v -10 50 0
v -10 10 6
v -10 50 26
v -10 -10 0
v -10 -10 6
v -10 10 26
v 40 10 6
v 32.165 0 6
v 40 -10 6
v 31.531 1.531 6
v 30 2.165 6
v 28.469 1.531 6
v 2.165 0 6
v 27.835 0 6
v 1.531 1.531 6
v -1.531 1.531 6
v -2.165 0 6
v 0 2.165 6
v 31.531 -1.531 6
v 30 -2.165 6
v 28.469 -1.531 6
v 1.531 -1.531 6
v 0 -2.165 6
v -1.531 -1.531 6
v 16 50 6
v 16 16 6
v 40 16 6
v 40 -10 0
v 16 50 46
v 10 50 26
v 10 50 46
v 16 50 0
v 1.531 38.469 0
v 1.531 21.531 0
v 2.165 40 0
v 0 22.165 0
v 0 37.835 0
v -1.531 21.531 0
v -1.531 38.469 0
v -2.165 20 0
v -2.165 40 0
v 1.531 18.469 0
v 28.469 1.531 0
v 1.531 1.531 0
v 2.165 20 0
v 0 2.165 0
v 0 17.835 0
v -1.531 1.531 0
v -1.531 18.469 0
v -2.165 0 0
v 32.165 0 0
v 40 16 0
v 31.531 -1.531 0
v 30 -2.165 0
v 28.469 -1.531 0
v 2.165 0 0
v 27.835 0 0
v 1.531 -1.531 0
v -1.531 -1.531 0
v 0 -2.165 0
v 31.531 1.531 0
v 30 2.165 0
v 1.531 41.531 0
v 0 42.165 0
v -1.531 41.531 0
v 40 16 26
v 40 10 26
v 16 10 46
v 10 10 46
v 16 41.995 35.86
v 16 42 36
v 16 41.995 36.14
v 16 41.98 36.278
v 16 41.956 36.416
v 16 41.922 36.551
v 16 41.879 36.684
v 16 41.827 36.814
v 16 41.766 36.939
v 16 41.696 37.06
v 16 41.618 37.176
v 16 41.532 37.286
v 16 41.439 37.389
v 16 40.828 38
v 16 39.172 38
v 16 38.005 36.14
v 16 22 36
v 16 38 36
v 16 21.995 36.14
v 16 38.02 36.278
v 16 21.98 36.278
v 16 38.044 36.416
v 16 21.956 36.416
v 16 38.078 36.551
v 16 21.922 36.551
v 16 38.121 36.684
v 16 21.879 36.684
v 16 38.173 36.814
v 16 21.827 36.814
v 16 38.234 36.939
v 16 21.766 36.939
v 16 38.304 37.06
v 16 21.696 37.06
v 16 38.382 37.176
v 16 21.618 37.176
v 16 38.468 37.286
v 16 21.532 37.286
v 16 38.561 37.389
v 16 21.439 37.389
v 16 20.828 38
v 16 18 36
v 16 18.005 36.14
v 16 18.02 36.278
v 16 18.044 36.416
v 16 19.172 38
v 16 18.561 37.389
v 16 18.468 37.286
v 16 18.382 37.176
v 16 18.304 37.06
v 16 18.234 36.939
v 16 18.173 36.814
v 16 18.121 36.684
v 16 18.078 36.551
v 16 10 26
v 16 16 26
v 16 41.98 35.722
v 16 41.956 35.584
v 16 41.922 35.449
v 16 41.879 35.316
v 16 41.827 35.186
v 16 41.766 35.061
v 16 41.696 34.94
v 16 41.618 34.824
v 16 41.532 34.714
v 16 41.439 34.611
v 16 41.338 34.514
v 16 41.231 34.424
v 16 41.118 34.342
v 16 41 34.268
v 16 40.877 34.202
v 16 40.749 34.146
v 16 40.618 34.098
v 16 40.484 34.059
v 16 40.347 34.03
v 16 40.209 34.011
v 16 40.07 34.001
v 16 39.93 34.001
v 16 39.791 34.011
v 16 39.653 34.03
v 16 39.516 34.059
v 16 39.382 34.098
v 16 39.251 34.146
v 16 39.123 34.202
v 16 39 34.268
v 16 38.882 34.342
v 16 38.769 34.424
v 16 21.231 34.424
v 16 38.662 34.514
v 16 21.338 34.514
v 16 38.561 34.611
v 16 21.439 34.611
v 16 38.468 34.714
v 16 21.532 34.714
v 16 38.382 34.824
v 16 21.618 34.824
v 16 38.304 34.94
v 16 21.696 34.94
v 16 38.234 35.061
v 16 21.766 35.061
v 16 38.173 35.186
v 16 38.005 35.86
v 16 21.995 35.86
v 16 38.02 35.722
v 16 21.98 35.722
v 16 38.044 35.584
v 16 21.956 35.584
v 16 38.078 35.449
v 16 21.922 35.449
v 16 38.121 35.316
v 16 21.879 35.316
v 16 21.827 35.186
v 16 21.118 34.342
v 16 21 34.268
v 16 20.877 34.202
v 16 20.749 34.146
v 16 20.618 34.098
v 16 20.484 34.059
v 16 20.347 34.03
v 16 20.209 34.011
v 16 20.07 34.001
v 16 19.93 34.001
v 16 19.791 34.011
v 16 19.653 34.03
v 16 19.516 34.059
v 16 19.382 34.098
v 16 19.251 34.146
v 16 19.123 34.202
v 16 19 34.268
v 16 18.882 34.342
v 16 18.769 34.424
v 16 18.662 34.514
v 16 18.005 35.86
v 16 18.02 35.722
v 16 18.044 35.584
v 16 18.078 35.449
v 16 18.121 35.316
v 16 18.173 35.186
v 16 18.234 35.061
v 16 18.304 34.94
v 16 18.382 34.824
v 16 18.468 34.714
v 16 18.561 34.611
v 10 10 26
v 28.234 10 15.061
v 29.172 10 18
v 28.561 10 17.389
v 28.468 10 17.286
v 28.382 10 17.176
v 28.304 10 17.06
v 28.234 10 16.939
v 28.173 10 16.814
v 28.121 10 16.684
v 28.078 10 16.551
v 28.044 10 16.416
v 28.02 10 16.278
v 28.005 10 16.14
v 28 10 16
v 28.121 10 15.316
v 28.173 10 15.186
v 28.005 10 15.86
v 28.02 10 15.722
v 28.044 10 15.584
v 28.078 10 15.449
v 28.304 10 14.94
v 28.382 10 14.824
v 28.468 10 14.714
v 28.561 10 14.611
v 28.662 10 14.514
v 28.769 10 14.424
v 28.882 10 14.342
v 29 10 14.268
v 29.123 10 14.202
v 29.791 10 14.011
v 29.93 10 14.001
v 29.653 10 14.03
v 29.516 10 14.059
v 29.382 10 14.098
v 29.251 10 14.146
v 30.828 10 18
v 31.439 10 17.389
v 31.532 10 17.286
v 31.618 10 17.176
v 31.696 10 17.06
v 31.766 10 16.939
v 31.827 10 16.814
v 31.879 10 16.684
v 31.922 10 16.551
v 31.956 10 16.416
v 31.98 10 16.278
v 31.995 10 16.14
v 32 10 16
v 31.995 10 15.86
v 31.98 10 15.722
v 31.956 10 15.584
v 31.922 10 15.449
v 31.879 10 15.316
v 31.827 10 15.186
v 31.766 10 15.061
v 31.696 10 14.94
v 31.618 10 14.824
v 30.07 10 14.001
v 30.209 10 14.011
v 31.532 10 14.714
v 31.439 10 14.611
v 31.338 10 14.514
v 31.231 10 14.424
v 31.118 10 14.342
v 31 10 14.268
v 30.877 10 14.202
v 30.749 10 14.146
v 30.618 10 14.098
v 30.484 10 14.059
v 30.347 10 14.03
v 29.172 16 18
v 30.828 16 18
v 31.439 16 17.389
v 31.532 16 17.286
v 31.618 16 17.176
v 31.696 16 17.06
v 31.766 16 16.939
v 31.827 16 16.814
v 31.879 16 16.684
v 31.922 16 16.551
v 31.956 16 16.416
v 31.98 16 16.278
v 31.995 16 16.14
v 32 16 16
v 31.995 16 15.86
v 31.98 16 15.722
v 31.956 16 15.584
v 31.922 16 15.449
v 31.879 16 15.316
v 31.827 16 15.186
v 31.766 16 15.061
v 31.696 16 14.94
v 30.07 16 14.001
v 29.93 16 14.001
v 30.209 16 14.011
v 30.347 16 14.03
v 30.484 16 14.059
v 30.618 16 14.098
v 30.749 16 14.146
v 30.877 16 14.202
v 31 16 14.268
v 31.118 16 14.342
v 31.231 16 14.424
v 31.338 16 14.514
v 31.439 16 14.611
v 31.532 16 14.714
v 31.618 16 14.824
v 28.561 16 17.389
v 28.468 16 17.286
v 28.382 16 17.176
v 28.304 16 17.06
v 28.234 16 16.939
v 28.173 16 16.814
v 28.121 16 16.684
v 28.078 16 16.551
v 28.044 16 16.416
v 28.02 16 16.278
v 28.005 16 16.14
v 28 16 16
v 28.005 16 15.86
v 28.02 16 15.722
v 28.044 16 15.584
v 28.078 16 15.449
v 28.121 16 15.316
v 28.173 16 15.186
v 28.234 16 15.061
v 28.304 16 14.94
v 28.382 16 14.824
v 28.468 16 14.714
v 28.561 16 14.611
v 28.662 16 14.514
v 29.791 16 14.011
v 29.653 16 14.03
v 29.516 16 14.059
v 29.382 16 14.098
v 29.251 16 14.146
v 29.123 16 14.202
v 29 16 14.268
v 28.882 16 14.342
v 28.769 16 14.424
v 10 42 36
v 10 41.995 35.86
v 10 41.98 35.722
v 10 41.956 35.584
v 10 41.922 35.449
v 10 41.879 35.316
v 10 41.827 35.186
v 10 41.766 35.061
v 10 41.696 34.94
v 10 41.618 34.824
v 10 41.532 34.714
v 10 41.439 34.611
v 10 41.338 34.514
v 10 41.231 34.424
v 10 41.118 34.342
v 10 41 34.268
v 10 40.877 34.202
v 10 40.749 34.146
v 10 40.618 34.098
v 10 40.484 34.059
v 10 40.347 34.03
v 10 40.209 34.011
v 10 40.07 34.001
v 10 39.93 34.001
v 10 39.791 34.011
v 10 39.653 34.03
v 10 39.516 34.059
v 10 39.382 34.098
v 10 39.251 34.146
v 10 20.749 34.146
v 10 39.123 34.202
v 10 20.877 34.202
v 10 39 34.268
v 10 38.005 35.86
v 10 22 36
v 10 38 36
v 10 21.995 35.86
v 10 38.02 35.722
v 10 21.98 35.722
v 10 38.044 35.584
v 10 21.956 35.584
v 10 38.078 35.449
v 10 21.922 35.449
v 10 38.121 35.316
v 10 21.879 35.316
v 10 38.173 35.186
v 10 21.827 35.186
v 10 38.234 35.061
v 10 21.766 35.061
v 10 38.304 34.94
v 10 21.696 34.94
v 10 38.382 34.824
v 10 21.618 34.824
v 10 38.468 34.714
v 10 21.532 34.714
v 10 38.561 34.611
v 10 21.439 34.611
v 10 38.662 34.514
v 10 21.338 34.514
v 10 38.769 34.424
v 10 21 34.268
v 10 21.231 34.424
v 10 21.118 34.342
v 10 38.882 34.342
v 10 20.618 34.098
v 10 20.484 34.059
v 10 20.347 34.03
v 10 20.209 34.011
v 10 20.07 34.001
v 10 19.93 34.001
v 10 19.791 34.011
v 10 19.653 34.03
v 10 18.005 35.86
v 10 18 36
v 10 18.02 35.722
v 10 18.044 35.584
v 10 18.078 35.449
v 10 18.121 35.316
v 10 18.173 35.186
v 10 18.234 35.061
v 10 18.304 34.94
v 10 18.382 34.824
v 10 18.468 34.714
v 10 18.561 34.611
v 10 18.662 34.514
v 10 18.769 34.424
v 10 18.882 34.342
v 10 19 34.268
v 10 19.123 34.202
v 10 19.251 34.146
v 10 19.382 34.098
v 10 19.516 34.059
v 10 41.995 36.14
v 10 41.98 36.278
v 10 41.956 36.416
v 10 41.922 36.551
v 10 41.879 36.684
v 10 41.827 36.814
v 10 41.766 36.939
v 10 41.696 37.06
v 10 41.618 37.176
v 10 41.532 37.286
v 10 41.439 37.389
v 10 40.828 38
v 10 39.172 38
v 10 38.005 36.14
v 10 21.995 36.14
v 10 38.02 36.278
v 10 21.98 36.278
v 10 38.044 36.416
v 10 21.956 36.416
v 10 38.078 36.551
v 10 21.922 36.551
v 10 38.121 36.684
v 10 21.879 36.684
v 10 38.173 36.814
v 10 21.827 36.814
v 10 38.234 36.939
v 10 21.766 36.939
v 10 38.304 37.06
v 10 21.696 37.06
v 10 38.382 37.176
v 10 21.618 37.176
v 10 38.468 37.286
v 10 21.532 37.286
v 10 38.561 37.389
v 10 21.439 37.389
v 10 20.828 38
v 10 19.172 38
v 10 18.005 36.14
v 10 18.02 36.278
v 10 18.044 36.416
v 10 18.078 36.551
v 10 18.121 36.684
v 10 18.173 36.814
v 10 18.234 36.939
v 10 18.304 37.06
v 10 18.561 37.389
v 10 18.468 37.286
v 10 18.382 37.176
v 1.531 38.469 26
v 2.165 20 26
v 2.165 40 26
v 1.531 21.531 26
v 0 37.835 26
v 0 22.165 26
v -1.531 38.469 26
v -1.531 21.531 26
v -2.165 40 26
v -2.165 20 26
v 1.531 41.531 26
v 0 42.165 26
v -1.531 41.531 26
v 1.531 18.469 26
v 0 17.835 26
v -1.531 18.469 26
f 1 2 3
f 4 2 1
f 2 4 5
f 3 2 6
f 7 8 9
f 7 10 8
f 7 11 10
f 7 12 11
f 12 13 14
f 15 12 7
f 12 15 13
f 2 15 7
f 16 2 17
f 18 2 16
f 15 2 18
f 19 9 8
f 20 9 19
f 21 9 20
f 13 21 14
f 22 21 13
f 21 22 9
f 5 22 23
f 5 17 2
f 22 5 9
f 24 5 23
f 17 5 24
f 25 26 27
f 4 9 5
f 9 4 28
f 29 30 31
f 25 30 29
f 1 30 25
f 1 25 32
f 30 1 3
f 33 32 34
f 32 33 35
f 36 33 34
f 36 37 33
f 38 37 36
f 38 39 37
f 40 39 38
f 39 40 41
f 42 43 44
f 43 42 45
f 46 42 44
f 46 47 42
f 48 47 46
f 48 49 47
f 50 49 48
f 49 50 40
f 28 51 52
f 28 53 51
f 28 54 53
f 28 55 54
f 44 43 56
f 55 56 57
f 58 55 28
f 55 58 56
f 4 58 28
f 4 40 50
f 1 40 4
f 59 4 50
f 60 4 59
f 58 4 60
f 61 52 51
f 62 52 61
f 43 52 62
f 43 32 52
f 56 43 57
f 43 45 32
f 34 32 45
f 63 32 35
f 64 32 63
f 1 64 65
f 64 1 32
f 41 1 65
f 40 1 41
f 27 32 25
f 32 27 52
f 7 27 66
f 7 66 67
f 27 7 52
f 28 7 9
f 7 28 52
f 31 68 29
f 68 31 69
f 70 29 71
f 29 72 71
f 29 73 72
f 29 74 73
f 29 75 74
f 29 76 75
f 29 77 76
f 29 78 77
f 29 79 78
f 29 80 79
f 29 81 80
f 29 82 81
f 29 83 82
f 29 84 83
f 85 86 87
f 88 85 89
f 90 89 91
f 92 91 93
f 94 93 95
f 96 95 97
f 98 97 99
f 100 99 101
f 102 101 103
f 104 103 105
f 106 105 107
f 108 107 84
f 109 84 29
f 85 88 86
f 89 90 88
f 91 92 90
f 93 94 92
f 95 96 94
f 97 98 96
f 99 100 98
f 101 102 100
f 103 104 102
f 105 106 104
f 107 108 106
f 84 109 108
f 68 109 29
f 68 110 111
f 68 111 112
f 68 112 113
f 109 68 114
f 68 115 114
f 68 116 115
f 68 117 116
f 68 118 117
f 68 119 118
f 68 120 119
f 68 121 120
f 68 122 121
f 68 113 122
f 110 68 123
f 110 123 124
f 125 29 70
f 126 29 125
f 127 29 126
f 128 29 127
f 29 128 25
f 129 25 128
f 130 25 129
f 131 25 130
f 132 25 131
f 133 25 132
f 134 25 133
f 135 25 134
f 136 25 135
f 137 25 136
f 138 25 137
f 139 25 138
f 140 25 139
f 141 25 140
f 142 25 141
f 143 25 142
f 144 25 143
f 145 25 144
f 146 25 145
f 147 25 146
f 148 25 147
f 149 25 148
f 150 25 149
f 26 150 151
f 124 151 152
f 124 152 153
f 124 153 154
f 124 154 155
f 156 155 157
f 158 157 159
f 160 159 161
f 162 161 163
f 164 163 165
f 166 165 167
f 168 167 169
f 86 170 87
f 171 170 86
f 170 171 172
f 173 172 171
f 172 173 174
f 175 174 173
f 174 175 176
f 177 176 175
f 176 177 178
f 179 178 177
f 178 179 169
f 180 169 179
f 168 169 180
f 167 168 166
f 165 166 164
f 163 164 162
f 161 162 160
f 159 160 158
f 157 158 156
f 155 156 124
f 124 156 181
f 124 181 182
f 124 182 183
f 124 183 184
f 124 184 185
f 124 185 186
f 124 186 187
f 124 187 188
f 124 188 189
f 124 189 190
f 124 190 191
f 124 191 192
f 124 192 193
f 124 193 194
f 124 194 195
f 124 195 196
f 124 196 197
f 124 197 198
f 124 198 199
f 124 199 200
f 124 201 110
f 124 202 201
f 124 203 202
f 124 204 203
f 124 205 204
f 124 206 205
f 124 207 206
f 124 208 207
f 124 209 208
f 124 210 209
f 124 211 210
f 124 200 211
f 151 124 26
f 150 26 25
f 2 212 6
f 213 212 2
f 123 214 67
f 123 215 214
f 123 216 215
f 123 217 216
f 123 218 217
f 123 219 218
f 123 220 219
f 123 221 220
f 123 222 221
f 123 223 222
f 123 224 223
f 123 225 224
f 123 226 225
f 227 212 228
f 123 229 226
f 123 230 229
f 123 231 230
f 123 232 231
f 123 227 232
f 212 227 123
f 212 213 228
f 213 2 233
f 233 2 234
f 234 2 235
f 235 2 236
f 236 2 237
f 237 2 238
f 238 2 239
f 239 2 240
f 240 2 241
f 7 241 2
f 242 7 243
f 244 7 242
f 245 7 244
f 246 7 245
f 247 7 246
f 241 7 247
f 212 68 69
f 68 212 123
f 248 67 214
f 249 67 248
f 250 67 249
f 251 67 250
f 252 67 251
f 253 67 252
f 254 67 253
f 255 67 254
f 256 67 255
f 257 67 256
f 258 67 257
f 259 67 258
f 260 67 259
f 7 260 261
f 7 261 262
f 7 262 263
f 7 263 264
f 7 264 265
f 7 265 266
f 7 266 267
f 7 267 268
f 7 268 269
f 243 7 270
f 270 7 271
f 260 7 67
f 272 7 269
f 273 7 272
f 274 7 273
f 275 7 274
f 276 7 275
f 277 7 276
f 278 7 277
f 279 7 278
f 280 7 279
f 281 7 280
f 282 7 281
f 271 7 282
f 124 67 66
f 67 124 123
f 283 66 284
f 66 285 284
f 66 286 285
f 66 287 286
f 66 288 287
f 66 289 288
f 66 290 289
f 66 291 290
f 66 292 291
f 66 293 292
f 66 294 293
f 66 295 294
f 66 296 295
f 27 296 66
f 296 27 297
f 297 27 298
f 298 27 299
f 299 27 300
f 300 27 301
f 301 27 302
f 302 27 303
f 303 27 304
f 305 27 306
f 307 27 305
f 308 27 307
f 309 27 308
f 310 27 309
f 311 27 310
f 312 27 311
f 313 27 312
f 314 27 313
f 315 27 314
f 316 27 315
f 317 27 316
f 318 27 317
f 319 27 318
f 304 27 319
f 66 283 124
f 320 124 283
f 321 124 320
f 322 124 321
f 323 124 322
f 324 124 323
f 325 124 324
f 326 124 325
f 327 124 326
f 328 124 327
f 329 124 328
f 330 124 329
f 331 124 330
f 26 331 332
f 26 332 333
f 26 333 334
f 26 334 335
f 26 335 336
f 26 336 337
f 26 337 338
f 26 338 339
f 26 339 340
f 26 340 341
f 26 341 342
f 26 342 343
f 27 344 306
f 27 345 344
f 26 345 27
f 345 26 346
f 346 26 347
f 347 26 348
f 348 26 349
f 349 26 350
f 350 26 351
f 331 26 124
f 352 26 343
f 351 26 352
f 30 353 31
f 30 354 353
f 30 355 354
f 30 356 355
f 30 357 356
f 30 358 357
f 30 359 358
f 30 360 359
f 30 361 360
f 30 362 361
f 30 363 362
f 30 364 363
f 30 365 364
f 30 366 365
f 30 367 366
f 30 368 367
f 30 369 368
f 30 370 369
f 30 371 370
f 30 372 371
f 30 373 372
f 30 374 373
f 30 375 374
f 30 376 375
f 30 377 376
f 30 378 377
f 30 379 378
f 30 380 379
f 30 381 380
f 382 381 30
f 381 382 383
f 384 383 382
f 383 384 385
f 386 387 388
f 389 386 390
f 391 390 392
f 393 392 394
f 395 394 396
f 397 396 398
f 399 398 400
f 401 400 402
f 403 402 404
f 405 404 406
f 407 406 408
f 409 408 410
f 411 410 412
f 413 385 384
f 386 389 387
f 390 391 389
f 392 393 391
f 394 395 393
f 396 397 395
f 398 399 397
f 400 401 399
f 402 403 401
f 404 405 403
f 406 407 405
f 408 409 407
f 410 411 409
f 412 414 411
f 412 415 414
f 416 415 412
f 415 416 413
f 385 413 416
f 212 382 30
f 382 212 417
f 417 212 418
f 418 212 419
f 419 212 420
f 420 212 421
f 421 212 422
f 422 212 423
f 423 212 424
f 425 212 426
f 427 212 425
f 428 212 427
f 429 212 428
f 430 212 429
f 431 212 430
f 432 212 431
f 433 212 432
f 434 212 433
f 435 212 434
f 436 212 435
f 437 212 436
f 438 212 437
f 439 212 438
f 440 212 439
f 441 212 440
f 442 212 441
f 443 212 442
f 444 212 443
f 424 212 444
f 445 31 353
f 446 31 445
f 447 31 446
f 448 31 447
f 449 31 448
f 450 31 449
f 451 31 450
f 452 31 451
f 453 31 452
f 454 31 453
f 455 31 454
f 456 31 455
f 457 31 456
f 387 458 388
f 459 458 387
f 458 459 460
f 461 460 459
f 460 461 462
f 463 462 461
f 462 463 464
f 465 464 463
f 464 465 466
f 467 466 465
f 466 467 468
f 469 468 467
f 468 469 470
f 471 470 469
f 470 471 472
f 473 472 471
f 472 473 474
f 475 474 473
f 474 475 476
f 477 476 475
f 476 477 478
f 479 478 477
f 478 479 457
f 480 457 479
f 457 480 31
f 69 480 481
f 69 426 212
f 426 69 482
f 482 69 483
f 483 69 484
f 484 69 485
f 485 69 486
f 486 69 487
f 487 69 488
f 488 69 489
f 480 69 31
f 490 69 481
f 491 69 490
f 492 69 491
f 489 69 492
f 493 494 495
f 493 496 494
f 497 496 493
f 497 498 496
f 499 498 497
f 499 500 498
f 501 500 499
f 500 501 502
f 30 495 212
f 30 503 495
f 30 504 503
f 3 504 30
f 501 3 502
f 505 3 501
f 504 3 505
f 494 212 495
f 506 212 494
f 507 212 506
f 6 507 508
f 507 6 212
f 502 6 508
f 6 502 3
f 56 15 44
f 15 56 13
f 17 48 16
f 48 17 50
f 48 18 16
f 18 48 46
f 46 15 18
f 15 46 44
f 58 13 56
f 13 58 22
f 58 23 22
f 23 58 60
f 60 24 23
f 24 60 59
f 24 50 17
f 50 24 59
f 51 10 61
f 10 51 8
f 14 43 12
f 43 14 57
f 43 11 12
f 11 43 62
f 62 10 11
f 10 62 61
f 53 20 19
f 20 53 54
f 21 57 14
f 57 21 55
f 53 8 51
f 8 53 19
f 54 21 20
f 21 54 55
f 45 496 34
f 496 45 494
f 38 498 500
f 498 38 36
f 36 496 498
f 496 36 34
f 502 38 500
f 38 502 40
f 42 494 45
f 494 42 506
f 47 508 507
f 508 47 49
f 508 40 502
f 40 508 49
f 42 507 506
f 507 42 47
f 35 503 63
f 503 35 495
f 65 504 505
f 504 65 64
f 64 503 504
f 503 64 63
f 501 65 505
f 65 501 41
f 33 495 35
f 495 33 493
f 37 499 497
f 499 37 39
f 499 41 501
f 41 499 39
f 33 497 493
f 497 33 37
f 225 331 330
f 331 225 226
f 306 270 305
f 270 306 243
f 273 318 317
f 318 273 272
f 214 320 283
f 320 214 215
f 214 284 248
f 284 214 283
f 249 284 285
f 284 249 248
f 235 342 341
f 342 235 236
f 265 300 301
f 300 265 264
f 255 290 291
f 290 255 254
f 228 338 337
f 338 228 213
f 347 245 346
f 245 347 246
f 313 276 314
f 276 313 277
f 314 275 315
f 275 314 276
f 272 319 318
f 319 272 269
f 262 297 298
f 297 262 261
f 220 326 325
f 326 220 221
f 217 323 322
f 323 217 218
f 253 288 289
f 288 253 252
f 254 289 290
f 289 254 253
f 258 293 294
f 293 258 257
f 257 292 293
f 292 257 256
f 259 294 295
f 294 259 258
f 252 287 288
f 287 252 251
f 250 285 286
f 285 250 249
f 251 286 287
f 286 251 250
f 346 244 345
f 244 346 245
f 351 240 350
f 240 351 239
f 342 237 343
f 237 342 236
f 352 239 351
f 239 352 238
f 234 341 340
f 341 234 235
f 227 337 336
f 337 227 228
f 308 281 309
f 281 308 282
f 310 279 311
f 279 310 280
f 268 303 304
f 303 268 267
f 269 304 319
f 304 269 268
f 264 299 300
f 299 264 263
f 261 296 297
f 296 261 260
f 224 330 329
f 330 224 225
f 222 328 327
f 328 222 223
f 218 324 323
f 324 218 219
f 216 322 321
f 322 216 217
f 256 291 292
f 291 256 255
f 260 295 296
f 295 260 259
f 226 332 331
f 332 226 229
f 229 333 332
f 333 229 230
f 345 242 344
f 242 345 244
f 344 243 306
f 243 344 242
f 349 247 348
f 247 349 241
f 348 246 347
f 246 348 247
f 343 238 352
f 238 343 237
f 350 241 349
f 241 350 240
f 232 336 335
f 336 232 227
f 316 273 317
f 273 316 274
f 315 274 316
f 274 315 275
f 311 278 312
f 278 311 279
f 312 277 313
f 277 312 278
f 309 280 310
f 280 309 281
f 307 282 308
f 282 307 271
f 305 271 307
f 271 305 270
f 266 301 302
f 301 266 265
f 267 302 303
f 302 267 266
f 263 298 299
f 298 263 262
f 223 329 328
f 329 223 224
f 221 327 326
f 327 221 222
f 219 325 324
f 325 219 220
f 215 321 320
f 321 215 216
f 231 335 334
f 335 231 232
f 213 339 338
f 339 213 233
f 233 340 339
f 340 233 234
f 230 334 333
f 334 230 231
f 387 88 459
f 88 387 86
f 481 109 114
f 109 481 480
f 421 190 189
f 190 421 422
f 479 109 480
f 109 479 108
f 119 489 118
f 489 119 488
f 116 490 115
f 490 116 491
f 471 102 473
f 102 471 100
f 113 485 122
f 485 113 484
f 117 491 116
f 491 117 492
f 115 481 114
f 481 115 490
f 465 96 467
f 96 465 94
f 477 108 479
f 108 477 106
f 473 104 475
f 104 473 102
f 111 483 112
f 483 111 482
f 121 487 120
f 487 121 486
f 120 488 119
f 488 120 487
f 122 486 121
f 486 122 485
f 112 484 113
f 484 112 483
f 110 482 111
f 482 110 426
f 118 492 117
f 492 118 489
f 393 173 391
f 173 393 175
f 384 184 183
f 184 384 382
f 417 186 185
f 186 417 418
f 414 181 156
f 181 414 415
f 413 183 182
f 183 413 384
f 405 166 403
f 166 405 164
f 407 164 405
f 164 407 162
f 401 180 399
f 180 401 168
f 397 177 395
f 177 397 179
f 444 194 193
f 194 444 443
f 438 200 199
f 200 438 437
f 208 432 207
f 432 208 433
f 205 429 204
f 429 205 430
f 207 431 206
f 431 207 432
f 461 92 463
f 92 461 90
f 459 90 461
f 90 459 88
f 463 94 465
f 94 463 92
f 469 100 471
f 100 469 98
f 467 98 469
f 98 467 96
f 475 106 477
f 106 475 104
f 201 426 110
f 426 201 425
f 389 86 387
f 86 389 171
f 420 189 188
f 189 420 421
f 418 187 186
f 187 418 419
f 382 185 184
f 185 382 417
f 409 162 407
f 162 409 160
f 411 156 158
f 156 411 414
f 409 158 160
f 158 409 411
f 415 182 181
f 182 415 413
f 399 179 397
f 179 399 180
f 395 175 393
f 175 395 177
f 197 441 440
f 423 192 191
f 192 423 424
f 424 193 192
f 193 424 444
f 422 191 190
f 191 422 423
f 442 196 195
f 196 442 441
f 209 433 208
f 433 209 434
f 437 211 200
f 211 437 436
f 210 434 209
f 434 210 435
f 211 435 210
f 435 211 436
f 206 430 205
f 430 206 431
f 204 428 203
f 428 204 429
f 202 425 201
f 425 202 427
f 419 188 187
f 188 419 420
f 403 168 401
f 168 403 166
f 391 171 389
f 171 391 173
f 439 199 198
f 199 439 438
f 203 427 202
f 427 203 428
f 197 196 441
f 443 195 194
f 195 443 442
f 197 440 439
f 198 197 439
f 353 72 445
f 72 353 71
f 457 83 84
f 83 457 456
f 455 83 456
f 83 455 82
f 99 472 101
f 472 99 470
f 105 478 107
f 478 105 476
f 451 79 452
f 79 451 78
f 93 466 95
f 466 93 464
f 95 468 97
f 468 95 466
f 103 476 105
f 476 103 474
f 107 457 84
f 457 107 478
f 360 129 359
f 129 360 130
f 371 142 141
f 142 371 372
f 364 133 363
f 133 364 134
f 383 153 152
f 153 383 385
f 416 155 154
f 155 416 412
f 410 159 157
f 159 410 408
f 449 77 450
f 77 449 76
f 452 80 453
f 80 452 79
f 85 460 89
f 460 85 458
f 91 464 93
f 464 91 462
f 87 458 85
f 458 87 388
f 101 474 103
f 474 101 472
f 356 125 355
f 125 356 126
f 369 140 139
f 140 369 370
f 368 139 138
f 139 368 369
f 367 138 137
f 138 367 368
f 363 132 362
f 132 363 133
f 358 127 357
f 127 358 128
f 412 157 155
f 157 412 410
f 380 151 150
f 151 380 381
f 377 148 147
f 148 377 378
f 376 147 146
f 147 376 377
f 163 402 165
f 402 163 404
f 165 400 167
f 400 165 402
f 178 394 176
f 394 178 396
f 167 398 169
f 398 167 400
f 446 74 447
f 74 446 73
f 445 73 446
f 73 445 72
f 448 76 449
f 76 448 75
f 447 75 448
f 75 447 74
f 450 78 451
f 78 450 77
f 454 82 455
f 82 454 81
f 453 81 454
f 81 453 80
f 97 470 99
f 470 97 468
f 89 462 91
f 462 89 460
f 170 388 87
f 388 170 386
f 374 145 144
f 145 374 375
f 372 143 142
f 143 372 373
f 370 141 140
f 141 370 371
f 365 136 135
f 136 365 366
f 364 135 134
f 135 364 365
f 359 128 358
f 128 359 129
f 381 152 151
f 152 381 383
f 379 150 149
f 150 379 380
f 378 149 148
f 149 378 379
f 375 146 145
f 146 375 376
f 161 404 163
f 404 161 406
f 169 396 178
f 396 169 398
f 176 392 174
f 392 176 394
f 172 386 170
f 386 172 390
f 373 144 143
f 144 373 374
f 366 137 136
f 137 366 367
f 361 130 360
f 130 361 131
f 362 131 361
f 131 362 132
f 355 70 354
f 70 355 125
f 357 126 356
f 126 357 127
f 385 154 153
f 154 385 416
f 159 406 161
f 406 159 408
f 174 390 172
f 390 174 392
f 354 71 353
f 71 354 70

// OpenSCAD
// file: trunctear.scad
//A module for truncated tear drops.

trunctear(1, 0.5, $fn = 90);

module trunctear(hei, radian, cent = false)
{
    linear_extrude(height = hei, center = cent)
        hull()
        {
            circle(r = radian);
            translate([0, radian/2])
                square([2*(radian*(2*cos(45)-1)), radian], center = true);
        }
}
// file: polyhole.scad
// The Cylinder is dead! Long live the Cylinder!
// A module for a polyhole by radius, based on Nophead's work.

module polyhole(h, r, cent = false)
{
    n = max(round(4 * r), 3);
    cylinder(h = h, r = r / cos(180 / n), $fn = n, center = cent);
}
// main file
// Upper brace

use<polyhole.scad>
use<trunctear.scad>

UpperBrace();

module UpperBrace()
{
    dist = 46;
    
    difference()
    {
        union()
        {
            hull()
            {
                translate([3, 20, 3])
                    cube([20+6, 60, 6], center = true);
                translate([15, 3, 3])
                    cube([50, 20+6, 6], center = true);
            }
            translate([3, 30, dist/2])
                cube([20+6, 40, dist], center = true);
            translate([15, 13, 13])
                cube([50, 6, 26], center = true);
        }
        translate([0, 30, dist-10])
            cube([20, 40, 20], center = true);
        polyhole(dist, 2);
        translate([30, 0, 0])
            polyhole(dist, 2);
        translate([0, 20, 0])
            polyhole(dist, 2);
        translate([0, 40, 0])
            polyhole(dist, 2);
        translate([30, 10, 16])
            rotate([90, 0, 180])
                trunctear(6, 2, $fn = 90);
        translate([10, 20, dist-10])
            rotate([90, 0, 90])
                trunctear(6, 2, $fn = 90);
        translate([10, 40, dist-10])
            rotate([90, 0, 90])
                trunctear(6, 2, $fn = 90);
    }
}
